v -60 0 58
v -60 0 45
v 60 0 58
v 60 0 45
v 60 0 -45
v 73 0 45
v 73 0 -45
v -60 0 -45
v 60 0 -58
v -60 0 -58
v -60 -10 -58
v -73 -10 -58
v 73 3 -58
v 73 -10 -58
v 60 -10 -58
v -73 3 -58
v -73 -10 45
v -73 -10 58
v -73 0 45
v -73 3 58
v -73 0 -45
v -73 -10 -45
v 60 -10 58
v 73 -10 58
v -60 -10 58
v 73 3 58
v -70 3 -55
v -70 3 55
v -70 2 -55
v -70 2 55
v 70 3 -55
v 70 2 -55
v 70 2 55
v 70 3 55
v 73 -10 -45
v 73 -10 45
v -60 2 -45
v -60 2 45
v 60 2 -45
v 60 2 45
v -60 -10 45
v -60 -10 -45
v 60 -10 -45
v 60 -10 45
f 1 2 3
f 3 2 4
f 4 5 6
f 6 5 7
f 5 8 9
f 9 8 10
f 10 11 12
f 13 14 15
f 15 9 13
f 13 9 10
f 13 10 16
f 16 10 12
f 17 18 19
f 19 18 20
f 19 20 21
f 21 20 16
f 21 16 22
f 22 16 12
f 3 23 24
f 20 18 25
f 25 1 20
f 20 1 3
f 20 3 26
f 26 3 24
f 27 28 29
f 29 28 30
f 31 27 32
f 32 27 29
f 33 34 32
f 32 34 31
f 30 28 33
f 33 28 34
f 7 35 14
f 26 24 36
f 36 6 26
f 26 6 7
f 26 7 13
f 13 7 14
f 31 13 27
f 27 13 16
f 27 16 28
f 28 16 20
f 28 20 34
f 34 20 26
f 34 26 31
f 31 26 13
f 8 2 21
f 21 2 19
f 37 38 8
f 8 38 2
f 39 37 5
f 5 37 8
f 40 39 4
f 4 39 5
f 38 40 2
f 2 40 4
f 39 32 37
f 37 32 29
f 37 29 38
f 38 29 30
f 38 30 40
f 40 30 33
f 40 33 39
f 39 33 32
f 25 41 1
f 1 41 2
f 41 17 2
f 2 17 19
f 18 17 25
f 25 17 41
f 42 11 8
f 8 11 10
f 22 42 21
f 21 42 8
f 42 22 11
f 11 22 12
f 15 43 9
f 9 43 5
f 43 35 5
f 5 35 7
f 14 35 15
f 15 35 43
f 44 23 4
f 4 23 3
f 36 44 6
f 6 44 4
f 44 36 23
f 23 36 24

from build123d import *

# Parameters (mm, degrees)
SKETCH1_W      = 146
SKETCH1_H      = 116
SKETCH1_W_2    = 140
SKETCH1_H_2    = 110
DINDING_DEPTH  = 3
SKETCH1_4_W    = 140
SKETCH1_4_H    = 110
SKETCH1_4_W_2  = 120
SKETCH1_4_H_2  = 90
LANDSITE_DEPTH = 2
SKETCH2_W      = 13
SKETCH2_H      = 13
KAKI_DEPTH     = 10


with BuildPart() as part:
    # Sketch1 → Dinding (new body)
    with BuildSketch(Plane(origin=(0, 0, 0), x_dir=(1, 0, 0), z_dir=(0, 1, 0))):
        Rectangle(SKETCH1_W, SKETCH1_H)
        Rectangle(SKETCH1_W_2, SKETCH1_H_2, mode=Mode.SUBTRACT)
    extrude(amount=DINDING_DEPTH)

    # Sketch1<4> → Landsite (add)
    with BuildSketch(Plane(origin=(0, 0, 0), x_dir=(1, 0, 0), z_dir=(0, 1, 0))):
        Rectangle(SKETCH1_4_W, SKETCH1_4_H)
        Rectangle(SKETCH1_4_W_2, SKETCH1_4_H_2, mode=Mode.SUBTRACT)
    extrude(amount=LANDSITE_DEPTH)

    # Sketch2 → Kaki (add)
    with BuildSketch(Plane.XZ):
        with Locations((-66.5, 51.5)):
            Rectangle(SKETCH2_W, SKETCH2_H)
        with Locations((-66.5, -51.5)):
            Rectangle(SKETCH2_W, SKETCH2_H)
        with Locations((66.5, -51.5)):
            Rectangle(SKETCH2_W, SKETCH2_H)
        with Locations((66.5, 51.5)):
            Rectangle(SKETCH2_W, SKETCH2_H)
    extrude(amount=KAKI_DEPTH)


solid = part.part
